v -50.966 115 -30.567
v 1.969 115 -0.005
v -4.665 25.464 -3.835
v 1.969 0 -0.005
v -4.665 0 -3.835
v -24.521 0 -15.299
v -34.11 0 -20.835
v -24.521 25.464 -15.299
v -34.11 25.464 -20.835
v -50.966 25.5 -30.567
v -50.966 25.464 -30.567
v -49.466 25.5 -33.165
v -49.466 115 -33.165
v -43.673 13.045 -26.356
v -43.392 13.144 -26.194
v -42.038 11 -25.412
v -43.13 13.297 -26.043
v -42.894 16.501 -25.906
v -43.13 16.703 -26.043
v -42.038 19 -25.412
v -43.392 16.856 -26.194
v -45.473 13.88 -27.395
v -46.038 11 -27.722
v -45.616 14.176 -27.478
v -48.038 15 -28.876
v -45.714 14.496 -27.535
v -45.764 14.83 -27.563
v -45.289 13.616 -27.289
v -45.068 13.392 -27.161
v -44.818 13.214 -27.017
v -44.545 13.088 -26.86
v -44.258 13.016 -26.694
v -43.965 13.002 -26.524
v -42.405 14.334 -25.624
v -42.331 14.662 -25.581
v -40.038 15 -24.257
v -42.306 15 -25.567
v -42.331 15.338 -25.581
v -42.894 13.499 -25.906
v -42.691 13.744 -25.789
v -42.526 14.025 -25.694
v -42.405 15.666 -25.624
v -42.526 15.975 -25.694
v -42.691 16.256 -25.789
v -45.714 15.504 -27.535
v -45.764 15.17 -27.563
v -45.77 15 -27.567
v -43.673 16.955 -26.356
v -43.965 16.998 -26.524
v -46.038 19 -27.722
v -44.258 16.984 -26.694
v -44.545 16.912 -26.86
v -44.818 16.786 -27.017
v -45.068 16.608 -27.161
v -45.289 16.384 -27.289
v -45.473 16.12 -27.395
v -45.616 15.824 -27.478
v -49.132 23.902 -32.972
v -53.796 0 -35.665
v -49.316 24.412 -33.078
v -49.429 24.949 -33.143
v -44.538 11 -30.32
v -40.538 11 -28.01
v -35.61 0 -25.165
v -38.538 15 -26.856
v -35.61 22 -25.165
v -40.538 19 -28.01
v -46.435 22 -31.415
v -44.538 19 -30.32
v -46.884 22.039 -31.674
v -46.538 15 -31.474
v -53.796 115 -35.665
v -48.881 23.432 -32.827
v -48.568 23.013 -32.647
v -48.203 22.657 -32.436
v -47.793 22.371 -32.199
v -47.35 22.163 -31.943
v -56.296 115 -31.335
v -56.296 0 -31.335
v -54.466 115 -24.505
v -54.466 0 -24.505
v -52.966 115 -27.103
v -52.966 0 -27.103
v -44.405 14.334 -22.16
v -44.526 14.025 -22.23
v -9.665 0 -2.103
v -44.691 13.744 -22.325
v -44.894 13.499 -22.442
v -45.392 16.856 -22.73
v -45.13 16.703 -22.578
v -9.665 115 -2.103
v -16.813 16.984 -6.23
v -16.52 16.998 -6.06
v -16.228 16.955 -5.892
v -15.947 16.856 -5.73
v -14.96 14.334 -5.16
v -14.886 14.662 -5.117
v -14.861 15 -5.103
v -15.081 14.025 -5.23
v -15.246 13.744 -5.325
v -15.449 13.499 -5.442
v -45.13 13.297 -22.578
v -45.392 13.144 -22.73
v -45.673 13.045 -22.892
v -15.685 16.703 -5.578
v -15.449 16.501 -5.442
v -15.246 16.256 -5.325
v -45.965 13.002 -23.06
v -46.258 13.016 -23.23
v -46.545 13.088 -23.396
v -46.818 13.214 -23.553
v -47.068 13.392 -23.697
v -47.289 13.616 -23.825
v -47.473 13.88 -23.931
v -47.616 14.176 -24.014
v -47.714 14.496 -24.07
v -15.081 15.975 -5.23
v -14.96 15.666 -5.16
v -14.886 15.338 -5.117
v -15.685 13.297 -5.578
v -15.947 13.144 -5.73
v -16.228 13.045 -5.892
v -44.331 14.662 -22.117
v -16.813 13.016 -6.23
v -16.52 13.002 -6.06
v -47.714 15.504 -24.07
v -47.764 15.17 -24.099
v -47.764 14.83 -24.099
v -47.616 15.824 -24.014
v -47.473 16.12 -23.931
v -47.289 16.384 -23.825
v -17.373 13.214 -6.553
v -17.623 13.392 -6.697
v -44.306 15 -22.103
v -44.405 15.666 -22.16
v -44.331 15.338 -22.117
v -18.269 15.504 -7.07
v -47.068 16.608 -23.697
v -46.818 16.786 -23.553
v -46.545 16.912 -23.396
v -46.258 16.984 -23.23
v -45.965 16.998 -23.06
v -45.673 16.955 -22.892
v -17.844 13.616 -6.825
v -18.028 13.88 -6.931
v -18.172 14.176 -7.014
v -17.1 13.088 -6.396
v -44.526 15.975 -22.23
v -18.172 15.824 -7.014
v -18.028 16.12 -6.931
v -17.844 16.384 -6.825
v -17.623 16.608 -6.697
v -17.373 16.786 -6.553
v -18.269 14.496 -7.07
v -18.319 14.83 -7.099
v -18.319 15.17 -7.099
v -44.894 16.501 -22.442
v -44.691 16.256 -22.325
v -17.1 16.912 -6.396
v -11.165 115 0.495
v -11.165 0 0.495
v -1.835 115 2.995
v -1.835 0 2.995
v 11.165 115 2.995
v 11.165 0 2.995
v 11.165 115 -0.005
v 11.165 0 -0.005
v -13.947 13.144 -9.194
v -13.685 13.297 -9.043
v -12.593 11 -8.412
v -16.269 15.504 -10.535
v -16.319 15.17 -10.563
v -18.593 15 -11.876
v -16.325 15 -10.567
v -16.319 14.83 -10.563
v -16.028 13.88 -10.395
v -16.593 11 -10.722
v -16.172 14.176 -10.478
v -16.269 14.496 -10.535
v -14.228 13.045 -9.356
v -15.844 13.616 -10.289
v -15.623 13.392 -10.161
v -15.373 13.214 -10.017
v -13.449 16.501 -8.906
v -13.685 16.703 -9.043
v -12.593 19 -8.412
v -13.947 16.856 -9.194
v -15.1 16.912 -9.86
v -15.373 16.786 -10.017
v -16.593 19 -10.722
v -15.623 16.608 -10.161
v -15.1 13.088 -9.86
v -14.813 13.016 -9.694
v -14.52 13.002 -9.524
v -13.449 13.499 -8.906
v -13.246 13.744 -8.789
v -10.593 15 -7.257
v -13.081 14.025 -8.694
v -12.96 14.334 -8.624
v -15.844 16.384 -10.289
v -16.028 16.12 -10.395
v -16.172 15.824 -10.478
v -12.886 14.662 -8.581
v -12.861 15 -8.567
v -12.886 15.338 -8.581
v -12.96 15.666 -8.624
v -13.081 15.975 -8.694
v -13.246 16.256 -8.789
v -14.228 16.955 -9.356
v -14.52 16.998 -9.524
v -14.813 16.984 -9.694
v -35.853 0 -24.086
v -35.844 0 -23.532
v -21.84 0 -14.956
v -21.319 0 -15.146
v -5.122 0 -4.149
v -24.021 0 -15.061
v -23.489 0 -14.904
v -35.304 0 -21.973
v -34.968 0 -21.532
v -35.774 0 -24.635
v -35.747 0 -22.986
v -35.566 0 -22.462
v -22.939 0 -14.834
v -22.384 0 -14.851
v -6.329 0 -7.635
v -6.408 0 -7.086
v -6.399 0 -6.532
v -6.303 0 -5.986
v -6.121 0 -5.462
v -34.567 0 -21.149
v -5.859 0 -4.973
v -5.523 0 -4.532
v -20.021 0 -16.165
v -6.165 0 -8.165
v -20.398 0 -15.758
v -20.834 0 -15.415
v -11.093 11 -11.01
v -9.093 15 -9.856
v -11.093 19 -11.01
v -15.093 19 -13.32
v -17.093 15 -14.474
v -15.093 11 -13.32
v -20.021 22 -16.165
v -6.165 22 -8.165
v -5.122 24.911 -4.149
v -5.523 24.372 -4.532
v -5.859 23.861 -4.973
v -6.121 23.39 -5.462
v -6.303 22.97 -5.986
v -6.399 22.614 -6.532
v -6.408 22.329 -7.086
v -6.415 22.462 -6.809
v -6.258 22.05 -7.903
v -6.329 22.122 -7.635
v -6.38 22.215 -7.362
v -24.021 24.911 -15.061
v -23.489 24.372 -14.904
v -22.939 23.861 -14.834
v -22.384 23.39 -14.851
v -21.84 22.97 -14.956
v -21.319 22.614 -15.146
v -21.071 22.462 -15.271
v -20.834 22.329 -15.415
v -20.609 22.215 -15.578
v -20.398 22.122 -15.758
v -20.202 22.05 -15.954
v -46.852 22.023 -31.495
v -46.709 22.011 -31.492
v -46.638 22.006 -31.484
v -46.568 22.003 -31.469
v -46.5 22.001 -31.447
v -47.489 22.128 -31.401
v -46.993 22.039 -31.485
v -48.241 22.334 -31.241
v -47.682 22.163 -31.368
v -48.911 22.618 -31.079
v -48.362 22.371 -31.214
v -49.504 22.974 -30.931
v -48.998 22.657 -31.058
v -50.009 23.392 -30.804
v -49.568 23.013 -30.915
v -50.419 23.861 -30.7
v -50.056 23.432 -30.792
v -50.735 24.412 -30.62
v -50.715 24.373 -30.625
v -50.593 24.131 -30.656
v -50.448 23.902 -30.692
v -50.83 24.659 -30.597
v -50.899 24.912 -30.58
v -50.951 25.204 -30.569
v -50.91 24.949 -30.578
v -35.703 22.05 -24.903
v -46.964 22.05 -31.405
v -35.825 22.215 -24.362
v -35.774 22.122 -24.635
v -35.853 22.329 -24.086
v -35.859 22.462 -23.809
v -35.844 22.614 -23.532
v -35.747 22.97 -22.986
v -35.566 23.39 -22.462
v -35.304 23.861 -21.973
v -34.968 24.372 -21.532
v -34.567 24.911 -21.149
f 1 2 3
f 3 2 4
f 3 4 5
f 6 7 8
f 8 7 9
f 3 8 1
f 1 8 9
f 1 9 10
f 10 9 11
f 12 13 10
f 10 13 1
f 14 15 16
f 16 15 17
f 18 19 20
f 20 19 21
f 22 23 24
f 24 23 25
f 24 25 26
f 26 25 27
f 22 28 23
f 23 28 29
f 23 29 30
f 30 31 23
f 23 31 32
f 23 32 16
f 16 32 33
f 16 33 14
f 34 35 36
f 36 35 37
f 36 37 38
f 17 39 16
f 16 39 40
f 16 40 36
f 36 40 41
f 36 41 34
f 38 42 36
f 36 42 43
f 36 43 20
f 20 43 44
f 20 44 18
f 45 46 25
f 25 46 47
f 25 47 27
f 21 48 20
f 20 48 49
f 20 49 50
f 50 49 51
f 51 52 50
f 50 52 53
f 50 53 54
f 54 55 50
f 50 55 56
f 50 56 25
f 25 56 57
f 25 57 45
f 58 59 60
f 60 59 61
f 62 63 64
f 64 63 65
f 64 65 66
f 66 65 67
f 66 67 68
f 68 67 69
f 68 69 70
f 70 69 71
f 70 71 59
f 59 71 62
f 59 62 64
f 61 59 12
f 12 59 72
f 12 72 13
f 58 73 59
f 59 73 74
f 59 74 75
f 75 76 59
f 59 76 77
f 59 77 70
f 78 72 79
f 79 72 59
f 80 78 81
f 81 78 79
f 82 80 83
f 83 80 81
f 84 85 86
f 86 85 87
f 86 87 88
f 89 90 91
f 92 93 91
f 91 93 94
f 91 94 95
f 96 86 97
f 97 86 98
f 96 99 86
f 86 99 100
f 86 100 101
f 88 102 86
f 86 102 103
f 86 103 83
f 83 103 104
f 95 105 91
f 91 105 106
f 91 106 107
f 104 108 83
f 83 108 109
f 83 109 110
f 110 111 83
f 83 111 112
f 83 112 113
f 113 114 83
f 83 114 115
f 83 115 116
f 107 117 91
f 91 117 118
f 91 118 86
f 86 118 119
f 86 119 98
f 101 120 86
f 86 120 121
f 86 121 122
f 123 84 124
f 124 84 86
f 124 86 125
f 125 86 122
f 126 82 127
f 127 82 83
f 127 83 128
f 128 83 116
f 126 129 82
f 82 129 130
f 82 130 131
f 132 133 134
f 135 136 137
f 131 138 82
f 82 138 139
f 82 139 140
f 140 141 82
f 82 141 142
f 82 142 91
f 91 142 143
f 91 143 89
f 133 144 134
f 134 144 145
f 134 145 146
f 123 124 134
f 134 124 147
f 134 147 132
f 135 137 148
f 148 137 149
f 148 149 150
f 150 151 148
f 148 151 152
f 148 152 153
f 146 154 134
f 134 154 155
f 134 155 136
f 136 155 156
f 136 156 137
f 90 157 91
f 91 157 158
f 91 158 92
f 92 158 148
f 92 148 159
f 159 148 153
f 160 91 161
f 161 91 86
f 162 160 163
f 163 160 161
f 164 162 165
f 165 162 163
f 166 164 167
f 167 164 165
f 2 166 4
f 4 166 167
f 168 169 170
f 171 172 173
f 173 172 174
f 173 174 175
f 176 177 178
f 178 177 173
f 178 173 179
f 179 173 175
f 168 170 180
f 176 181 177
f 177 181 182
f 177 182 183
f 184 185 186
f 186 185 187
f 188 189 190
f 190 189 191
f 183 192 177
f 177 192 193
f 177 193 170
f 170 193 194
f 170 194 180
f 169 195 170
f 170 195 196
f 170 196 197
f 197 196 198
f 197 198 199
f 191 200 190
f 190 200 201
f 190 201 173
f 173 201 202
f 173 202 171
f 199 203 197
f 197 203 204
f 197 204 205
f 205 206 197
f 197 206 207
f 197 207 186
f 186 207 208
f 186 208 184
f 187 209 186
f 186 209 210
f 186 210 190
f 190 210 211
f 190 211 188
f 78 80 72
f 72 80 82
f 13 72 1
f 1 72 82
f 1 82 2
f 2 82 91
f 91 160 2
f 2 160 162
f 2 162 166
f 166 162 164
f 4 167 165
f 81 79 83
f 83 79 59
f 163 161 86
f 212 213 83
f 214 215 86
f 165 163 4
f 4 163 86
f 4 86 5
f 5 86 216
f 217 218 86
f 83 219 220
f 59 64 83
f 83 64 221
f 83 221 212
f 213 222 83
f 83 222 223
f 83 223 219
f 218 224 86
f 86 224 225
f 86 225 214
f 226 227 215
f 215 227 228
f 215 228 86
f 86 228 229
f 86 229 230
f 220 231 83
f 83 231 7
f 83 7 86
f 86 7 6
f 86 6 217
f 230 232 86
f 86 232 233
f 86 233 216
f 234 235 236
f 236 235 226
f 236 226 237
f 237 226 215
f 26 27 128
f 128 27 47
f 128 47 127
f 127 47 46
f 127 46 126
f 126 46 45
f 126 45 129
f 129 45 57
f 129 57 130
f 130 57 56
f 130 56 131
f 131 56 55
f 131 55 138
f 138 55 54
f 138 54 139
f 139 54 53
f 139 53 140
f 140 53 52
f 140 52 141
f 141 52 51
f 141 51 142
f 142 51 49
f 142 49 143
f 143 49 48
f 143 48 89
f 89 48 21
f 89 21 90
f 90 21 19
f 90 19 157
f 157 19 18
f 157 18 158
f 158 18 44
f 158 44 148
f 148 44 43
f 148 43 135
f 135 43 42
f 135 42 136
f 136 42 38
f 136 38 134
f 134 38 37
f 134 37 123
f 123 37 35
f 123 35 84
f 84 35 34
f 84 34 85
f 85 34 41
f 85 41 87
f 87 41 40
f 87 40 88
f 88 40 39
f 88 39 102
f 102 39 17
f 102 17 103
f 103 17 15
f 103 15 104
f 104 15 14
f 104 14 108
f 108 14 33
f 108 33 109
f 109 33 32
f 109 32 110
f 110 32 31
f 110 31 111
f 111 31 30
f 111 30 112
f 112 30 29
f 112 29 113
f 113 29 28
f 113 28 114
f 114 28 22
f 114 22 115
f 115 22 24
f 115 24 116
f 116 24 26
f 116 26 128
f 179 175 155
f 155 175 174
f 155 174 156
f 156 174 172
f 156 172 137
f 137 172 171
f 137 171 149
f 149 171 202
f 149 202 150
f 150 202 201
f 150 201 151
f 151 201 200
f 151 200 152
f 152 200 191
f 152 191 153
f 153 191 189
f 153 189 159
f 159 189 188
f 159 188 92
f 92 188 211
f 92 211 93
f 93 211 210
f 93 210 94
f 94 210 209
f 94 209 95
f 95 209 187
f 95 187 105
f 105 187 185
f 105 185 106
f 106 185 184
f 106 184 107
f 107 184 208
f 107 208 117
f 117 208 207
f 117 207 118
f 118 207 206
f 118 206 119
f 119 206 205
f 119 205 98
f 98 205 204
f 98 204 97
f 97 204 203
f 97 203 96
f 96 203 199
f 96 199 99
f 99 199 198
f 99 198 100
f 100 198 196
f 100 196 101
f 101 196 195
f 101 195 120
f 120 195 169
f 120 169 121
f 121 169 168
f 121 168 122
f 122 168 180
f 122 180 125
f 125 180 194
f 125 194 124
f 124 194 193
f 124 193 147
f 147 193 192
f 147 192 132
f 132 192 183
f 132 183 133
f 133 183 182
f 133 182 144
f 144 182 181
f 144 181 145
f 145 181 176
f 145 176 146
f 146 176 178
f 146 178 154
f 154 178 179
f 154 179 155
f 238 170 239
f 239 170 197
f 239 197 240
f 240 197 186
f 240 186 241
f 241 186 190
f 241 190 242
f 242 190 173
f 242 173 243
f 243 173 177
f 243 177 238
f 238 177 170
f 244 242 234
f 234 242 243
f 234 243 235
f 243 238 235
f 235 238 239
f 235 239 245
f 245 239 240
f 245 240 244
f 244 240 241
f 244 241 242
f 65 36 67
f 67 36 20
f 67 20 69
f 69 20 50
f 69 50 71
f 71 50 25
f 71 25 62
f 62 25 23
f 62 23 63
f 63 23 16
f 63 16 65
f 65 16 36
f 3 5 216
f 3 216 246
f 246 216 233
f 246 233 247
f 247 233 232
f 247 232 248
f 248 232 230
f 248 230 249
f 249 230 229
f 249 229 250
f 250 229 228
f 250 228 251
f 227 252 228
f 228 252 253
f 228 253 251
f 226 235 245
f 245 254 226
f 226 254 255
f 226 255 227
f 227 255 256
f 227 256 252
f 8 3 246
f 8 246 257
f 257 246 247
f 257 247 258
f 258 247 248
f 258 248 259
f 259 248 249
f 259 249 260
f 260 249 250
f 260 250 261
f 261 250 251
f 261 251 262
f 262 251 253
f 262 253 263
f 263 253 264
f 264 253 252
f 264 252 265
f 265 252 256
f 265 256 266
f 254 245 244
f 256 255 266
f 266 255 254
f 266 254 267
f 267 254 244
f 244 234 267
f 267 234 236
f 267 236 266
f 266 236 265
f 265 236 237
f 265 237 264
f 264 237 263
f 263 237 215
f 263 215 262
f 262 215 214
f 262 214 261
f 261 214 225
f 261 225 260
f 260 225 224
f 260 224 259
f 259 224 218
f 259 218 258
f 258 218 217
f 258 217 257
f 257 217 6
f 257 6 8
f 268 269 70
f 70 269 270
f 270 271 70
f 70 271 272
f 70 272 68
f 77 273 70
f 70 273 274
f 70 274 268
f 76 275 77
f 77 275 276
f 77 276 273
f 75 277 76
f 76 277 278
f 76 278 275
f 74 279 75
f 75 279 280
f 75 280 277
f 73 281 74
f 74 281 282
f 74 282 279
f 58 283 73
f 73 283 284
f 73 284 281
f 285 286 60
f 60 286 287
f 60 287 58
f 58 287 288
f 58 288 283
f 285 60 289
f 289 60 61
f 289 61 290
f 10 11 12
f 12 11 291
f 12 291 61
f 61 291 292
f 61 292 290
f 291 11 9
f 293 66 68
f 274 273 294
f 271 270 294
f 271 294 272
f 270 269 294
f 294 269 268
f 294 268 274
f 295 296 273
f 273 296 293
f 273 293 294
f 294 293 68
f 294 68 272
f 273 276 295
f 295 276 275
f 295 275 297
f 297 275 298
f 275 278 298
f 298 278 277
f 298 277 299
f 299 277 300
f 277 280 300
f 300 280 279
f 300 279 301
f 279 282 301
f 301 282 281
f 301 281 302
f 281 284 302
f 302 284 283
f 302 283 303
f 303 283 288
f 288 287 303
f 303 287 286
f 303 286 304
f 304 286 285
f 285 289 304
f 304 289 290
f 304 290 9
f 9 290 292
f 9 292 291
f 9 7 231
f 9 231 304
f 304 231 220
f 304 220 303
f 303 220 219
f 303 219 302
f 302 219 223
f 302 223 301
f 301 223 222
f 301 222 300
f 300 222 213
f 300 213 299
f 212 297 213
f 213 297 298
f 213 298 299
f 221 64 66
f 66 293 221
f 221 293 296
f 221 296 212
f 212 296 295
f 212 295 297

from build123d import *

# Parameters (mm, degrees)
BOSS_EXTRU_1_DEPTH      = 115
ESQUISSE3_R             = 2.0000000000000027
ESQUISSE3_R_2           = 2.0000000000000036
ENL_V_MAT_EXTRU_1_DEPTH = 115
ESQUISSE4_W             = 16
ESQUISSE4_H             = 22
BOSS_EXTRU_2_DEPTH      = 3
CONG_1_R                = 3.5


with BuildPart() as part:
    # Esquisse1 → Boss.-Extru.1 (new body)
    with BuildSketch(Plane(origin=(0, 0, 0), x_dir=(1, 0, 0), z_dir=(0, 1, 0))):
        Polygon((-9.665063509740824, 2.102761677791812), (-11.16506350974071, -0.4953145335614556), (-1.834936490818464, -2.99531453356143), (11.165063509180728, -2.9953145335603057), (11.165063509180731, 0.00468546643886736), (1.9689110864743, 0.00468546643886637), (-7.660052187463922, 5.563970004664114), (-50.96633369896256, 30.56686329292954), (-49.46633369896244, 33.164939504283076), (-53.79646071788463, 35.664939504283076), (-55.29646071788474, 33.06686329292953), (-56.29646071788462, 31.334812485360874), (-54.466333698962515, 24.504685466438406), (-52.96633369896275, 27.10276167779183), align=None)
    extrude(amount=BOSS_EXTRU_1_DEPTH)

    # Esquisse3 → Enlèv. mat.-Extru.1 (cut)
    with BuildSketch(Plane(origin=(-1.5057433618991607, 0, 2.6080240059689155), x_dir=(0.8660254037844384, 0, 0.5000000000000006), z_dir=(-0.5000000000000006, 0, 0.8660254037844385))):
        with Locations((-51.421571367521196, 15)):
            Circle(ESQUISSE3_R)
        with Locations((-17.42157136752137, 15)):
            Circle(ESQUISSE3_R_2)
    extrude(amount=-ENL_V_MAT_EXTRU_1_DEPTH, mode=Mode.SUBTRACT)

    # Esquisse4 → Boss.-Extru.2 (add)
    # profile 1 of 2: a face of its own
    with BuildSketch(Plane(origin=(0.4942566381008935, 0, -0.8560776091689317), x_dir=(-0.8660254037844388, 0, -0.49999999999999983), z_dir=(0.4999999999999998, 0, -0.8660254037844387))):
        with Locations((17.42157136752138, 11)):
            Rectangle(ESQUISSE4_W, ESQUISSE4_H)
        Polygon((19.73097244427988, 11.000000000000002), (22.040373521038383, 14.999999999999996), (19.730972444279878, 18.999999999999996), (15.112170290762874, 18.999999999999996), (12.802769214004368, 14.999999999999996), (15.112170290762867, 11.000000000000002), align=None, mode=Mode.SUBTRACT)
    # profile 2 of 2: a face of its own
    with BuildSketch(Plane(origin=(0.4942566381008935, 0, -0.8560776091689317), x_dir=(-0.8660254037844388, 0, -0.49999999999999983), z_dir=(0.4999999999999998, 0, -0.8660254037844387))):
        Polygon((43.42157136752119, 0), (59.42157136752126, 0), (59.42157136752126, 22.000000000000007), (43.42157136752119, 22), align=None)
        Polygon((49.11217029076269, 10.999999999999996), (53.73097244427969, 10.999999999999996), (56.0403735210382, 14.999999999999993), (53.7309724442797, 18.999999999999982), (49.11217029076269, 18.999999999999982), (46.80276921400419, 14.999999999999998), align=None, mode=Mode.SUBTRACT)
    extrude(amount=BOSS_EXTRU_2_DEPTH)

    # Congé1
    # the kernel refuses this fillet: 3.5 mm, written as the material it adds along each edge
    with BuildSketch(Plane(origin=(-21.521469970291736, 0, -13.566863292929616), x_dir=(-0.8660254037844398, 0, -0.499999999999998), z_dir=(0, 1, 0))) as cong_1_piece_1:
        with BuildLine():
            CenterArc((3.464101615137791, -3.4999999999999996), CONG_1_R, 89.99999999999986, 81.78678929826208)
            Line((3.411e-14, -3.000000000000007), (-0.06928203230272056, -2.990000000000007))
            ThreePointArc((-0.06928203230272056, -2.990000000000007), (-0.0700000000000017, -1.5000000000000009), (-0.06999999999999917, 8.1e-16))
            Line((-0.06999999999999917, 8.1e-16), (-8e-17, 0.07000000000000071))
            Line((-8e-17, 0.07000000000000071), (3.464101615137799, 0.0700000000000007))
            Line((3.464101615137799, 0.0700000000000007), (3.4641016151377992, -8e-17))
        make_face()
    extrude(amount=22)
    with BuildSketch(Plane(origin=(-7.665063509740717, 22, -5.56686329292962), x_dir=(0.8660254037844386, 0, 0.5000000000000001), z_dir=(0, -1, 0))) as cong_1_piece_2:
        with BuildLine():
            CenterArc((3.4641016151377975, -3.5), CONG_1_R, 89.99999999999999, 81.78678929826192)
            Line((4.212e-14, -3.000000000000006), (-0.06928203230271353, -2.9900000000000064))
            ThreePointArc((-0.06928203230271353, -2.9900000000000064), (-0.07000000000000044, -1.5000000000000042), (-0.06999999999999994, -1.9e-16))
            Line((-0.06999999999999994, -1.9e-16), (-1.9e-16, 0.06999999999999994))
            Line((-1.9e-16, 0.06999999999999994), (3.464101615137799, 0.07000000000000006))
            Line((3.464101615137799, 0.07000000000000006), (3.464101615137799, -1e-16))
        make_face()
    extrude(amount=22)
    with BuildSketch(Plane(origin=(-21.521469970291736, 22, -13.566863292929616), x_dir=(-7e-16, 1, 1.21e-15), z_dir=(0.8660254037844388, 0, 0.49999999999999983))) as cong_1_piece_3:
        with BuildLine():
            CenterArc((3.4641016151377912, -3.5), CONG_1_R, 89.99999999999993, 81.78678929826201)
            Line((3.488e-14, -3.0000000000000067), (-0.06928203230272052, -2.990000000000006))
            ThreePointArc((-0.06928203230272052, -2.990000000000006), (-0.0700000000000024, -1.500000000000003), (-0.07000000000000028, 3.4e-16))
            Line((-0.07000000000000028, 3.4e-16), (1e-16, 0.07000000000000095))
            Line((1e-16, 0.07000000000000095), (3.464101615137796, 0.07000000000000071))
            Line((3.464101615137796, 0.07000000000000071), (3.464101615137796, 0))
        make_face()
    extrude(amount=16)
    with BuildSketch(Plane(origin=(-37.10992723841147, 22, -22.56686329292952), x_dir=(0.5000000000000127, 0, -0.8660254037844313), z_dir=(0, -1, 0))) as cong_1_piece_4:
        with BuildLine():
            CenterArc((3.5000000000000466, 3.464101615137746), CONG_1_R, 179.99999999999915, 81.78678929826202)
            Line((4.591e-14, 3.464101615137798), (-0.06999999999995148, 3.4641016151378015))
            Line((-0.06999999999995148, 3.4641016151378015), (-0.06999999999999738, 3.46e-15))
            Line((-0.06999999999999738, 3.46e-15), (-3.8e-16, -0.06999999999999916))
            ThreePointArc((-3.8e-16, -0.06999999999999916), (1.5000000000000058, -0.07000000000002472), (2.9900000000000095, -0.06928203230275311))
            Line((2.9900000000000095, -0.06928203230275311), (3.000000000000009, -2e-17))
        make_face()
    extrude(amount=22)
    with BuildSketch(Plane(origin=(-50.96633369896256, 22.000000000000007, -30.56686329292955), x_dir=(0.4999999999999998, 1.3026616822268463e-14, -0.8660254037844388), z_dir=(0.8660254037844388, 0, 0.49999999999999983))) as cong_1_piece_5:
        with BuildLine():
            CenterArc((3.5000000000000306, 3.4641016151377513), CONG_1_R, 179.99999999999926, 81.78678929826219)
            Line((2.927e-14, 3.464101615137797), (-0.06999999999996813, 3.464101615137798))
            Line((-0.06999999999996813, 3.464101615137798), (-0.06999999999999787, 9.1e-16))
            Line((-0.06999999999999787, 9.1e-16), (2.16e-15, -0.0700000000000003))
            ThreePointArc((2.16e-15, -0.0700000000000003), (1.5000000000000022, -0.07000000000001984), (2.990000000000009, -0.0692820323027553))
            Line((2.990000000000009, -0.0692820323027553), (3.0000000000000093, 0))
        make_face()
    extrude(amount=16.000000000000075)
    with BuildSketch(Plane(origin=(-50.96633369896256, 22.000000000000007, -30.56686329292955), x_dir=(0.8660254037844387, 0, 0.49999999999999983), z_dir=(0.49999999999999983, 0, -0.8660254037844388))) as cong_1_piece_6:
        with BuildLine():
            CenterArc((CONG_1_R, -CONG_1_R), CONG_1_R, 90, 90)
            Line((-1.78e-15, -CONG_1_R), (-CONG_1_R * 0.02, -CONG_1_R))
            Line((-CONG_1_R * 0.02, -CONG_1_R), (-CONG_1_R * 0.02, CONG_1_R * 0.02))
            Line((-CONG_1_R * 0.02, CONG_1_R * 0.02), (CONG_1_R, CONG_1_R * 0.02))
            Line((CONG_1_R, CONG_1_R * 0.02), (CONG_1_R, 0))
        make_face()
    extrude(amount=3.0000000000000036)
    with BuildSketch(Plane(origin=(-29.02146997029182, 22, -17.89699031185185), x_dir=(0, 1, 0), z_dir=(0.8660254037844388, 0, 0.49999999999999983))) as cong_1_piece_7a_section:
        with BuildLine():
            CenterArc((3.4641016151377926, -3.5000000000000013), CONG_1_R, 90, 81.78678929826191)
            Line((3.553e-14, -3.000000000000007), (-0.0692820323027199, -2.9900000000000064))
            ThreePointArc((-0.0692820323027199, -2.9900000000000064), (-0.07000000000000028, -1.500000000000002), (-0.07000000000000028, 0))
            Line((-0.07000000000000028, 0), (0, 0.0699999999999974))
            Line((0, 0.0699999999999974), (3.4641016151377926, 0.06999999999999917))
            Line((3.4641016151377926, 0.06999999999999917), (3.4641016151377926, 0))
        make_face()
    cong_1_piece_7a = extrude(amount=24.660254037844485, mode=Mode.PRIVATE)
    cong_1_piece_7a = split(cong_1_piece_7a, bisect_by=Plane(origin=(-21.154506205499796, 22.800005921132424, -14.202463178086015), z_dir=(-0.8660254037844388, 0, -0.49999999999999983)), keep=Keep.TOP, mode=Mode.PRIVATE)
    with BuildSketch(Plane(origin=(-21.521469970291736, 0, -13.566863292929616), x_dir=(-0.8660254037844398, 0, -0.499999999999998), z_dir=(0, 1, 0))) as cong_1_piece_7b_section:
        with BuildLine():
            CenterArc((3.464101615137791, -3.4999999999999996), CONG_1_R, 89.99999999999986, 81.78678929826208)
            Line((3.411e-14, -3.000000000000007), (-0.06928203230272056, -2.990000000000007))
            ThreePointArc((-0.06928203230272056, -2.990000000000007), (-0.0700000000000017, -1.5000000000000009), (-0.06999999999999917, 8.1e-16))
            Line((-0.06999999999999917, 8.1e-16), (-8e-17, 0.07000000000000071))
            Line((-8e-17, 0.07000000000000071), (3.464101615137799, 0.0700000000000007))
            Line((3.464101615137799, 0.0700000000000007), (3.4641016151377992, -8e-17))
        make_face()
    cong_1_piece_7b = extrude(amount=30.660254037844496, mode=Mode.PRIVATE)
    cong_1_piece_7b = split(cong_1_piece_7b, bisect_by=Plane(origin=(-21.84733165637773, 22, -14.602466138652442), z_dir=(0, 1, 0)), keep=Keep.TOP, mode=Mode.PRIVATE)
    cong_1_piece_7 = cong_1_piece_7a & cong_1_piece_7b
    add(cong_1_piece_7)
    with BuildSketch(Plane(origin=(-7.665063509740719, 30.660254037844496, -5.566863292929618), x_dir=(0.8660254037844389, 0, 0.4999999999999995), z_dir=(0, -1, 0))) as cong_1_piece_8a_section:
        with BuildLine():
            CenterArc((3.4641016151378006, -3.5), CONG_1_R, 90.00000000000001, 81.78678929826195)
            Line((4.504e-14, -3.0000000000000084), (-0.06928203230271082, -2.990000000000009))
            ThreePointArc((-0.06928203230271082, -2.990000000000009), (-0.06999999999999906, -1.5000000000000056), (-0.06999999999999994, -2.4e-16))
            Line((-0.06999999999999994, -2.4e-16), (-2.4e-16, 0.06999999999999994))
            Line((-2.4e-16, 0.06999999999999994), (3.4641016151377992, 0.07))
            Line((3.4641016151377992, 0.07), (3.4641016151377997, 5e-17))
        make_face()
    cong_1_piece_8a = extrude(amount=30.660254037844496, mode=Mode.PRIVATE)
    cong_1_piece_8a = split(cong_1_piece_8a, bisect_by=Plane(origin=(-6.605274294070357, 22, -5.802460217520097), z_dir=(0, 1, 0)), keep=Keep.TOP, mode=Mode.PRIVATE)
    with BuildSketch(Plane(origin=(-21.521469970291736, 22, -13.566863292929616), x_dir=(-7e-16, 1, 1.21e-15), z_dir=(0.8660254037844388, 0, 0.49999999999999983))) as cong_1_piece_8b_section:
        with BuildLine():
            CenterArc((3.4641016151377912, -3.5), CONG_1_R, 89.99999999999993, 81.78678929826201)
            Line((3.488e-14, -3.0000000000000067), (-0.06928203230272052, -2.990000000000006))
            ThreePointArc((-0.06928203230272052, -2.990000000000006), (-0.0700000000000024, -1.500000000000003), (-0.07000000000000028, 3.4e-16))
            Line((-0.07000000000000028, 3.4e-16), (1e-16, 0.07000000000000095))
            Line((1e-16, 0.07000000000000095), (3.464101615137796, 0.07000000000000071))
            Line((3.464101615137796, 0.07000000000000071), (3.464101615137796, 0))
        make_face()
    cong_1_piece_8b = extrude(amount=24.66025403784449, mode=Mode.PRIVATE)
    cong_1_piece_8b = split(cong_1_piece_8b, bisect_by=Plane(origin=(-7.298099744948748, 22.800005921132424, -6.202463178086066), z_dir=(0.8660254037844388, 0, 0.49999999999999983)), keep=Keep.TOP, mode=Mode.PRIVATE)
    cong_1_piece_8 = cong_1_piece_8a & cong_1_piece_8b
    add(cong_1_piece_8)
    with BuildSketch(Plane(origin=(-50.96633369896256, 22.000000000000007, -30.56686329292955), x_dir=(0.4999999999999998, 1.3026616822268463e-14, -0.8660254037844388), z_dir=(0.8660254037844388, 0, 0.49999999999999983))) as cong_1_piece_9a_section:
        with BuildLine():
            CenterArc((3.5000000000000306, 3.4641016151377513), CONG_1_R, 179.99999999999926, 81.78678929826219)
            Line((2.927e-14, 3.464101615137797), (-0.06999999999996813, 3.464101615137798))
            Line((-0.06999999999996813, 3.464101615137798), (-0.06999999999999787, 9.1e-16))
            Line((-0.06999999999999787, 9.1e-16), (2.16e-15, -0.0700000000000003))
            ThreePointArc((2.16e-15, -0.0700000000000003), (1.5000000000000022, -0.07000000000001984), (2.990000000000009, -0.0692820323027553))
            Line((2.990000000000009, -0.0692820323027553), (3.0000000000000093, 0))
        make_face()
    cong_1_piece_9a = extrude(amount=24.660254037844567, mode=Mode.PRIVATE)
    cong_1_piece_9a = split(cong_1_piece_9a, bisect_by=Plane(origin=(-36.742963473619156, 22.800005921131838, -23.202463178086564), z_dir=(0.8660254037844388, 0, 0.49999999999999983)), keep=Keep.TOP, mode=Mode.PRIVATE)
    with BuildSketch(Plane(origin=(-37.10992723841147, 30.660254037844496, -22.56686329292951), x_dir=(0.5000000000000099, 0, -0.8660254037844329), z_dir=(0, -1, 0))) as cong_1_piece_9b_section:
        with BuildLine():
            CenterArc((3.5000000000000386, 3.4641016151377477), CONG_1_R, 179.99999999999935, 81.78678929826202)
            Line((3.741e-14, 3.464101615137789), (-0.06999999999996008, 3.464101615137792))
            Line((-0.06999999999996008, 3.464101615137792), (-0.0699999999999974, 3.23e-15))
            Line((-0.0699999999999974, 3.23e-15), (-1.6e-16, -0.06999999999999917))
            ThreePointArc((-1.6e-16, -0.06999999999999917), (1.500000000000006, -0.07000000000001991), (2.9900000000000126, -0.06928203230275315))
            Line((2.9900000000000126, -0.06928203230275315), (3.0000000000000115, 9e-17))
        make_face()
    cong_1_piece_9b = extrude(amount=30.660254037844496, mode=Mode.PRIVATE)
    cong_1_piece_9b = split(cong_1_piece_9b, bisect_by=Plane(origin=(-36.05013802274124, 22, -22.80246021752022), z_dir=(3.8e-16, 1, 2.2e-16)), keep=Keep.TOP, mode=Mode.PRIVATE)
    cong_1_piece_9 = cong_1_piece_9a & cong_1_piece_9b
    add(cong_1_piece_9)
    with BuildSketch(Plane(origin=(-55.34133369896255, 22.000000000000007, -22.989141009815718), x_dir=(0.8660254037844387, 0, 0.49999999999999983), z_dir=(0.49999999999999983, 0, -0.8660254037844388))) as cong_1_piece_10a_section:
        with BuildLine():
            CenterArc((CONG_1_R, -CONG_1_R), CONG_1_R, 90, 90)
            Line((-7.93e-15, -CONG_1_R), (-CONG_1_R * 0.02, -CONG_1_R))
            Line((-CONG_1_R * 0.02, -CONG_1_R), (-CONG_1_R * 0.02, CONG_1_R * 0.02))
            Line((-CONG_1_R * 0.02, CONG_1_R * 0.02), (CONG_1_R, CONG_1_R * 0.02))
            Line((CONG_1_R, CONG_1_R * 0.02), (CONG_1_R, 0))
        make_face()
    cong_1_piece_10a = extrude(amount=11.749999999999995, mode=Mode.PRIVATE)
    cong_1_piece_10a = split(cong_1_piece_10a, bisect_by=Plane(origin=(-50.280109978095446, 22.79238289993389, -30.170671842962605), z_dir=(-0.49999999999999967, 0, 0.8660254037844389)), keep=Keep.TOP, mode=Mode.PRIVATE)
    with BuildSketch(Plane(origin=(-58.46633369896265, 22.00000000000001, -34.89699031185178), x_dir=(0.4999999999999998, 1.3026616822268407e-14, -0.8660254037844388), z_dir=(0.8660254037844388, 0, 0.49999999999999983))) as cong_1_piece_10b_section:
        with BuildLine():
            CenterArc((3.500000000000043, 3.4641016151377513), CONG_1_R, 179.99999999999926, 81.78678929826219)
            Line((4.513e-14, 3.464101615137797), (-0.06999999999995227, 3.464101615137798))
            Line((-0.06999999999995227, 3.464101615137798), (-0.0699999999999974, 9.1e-16))
            Line((-0.0699999999999974, 9.1e-16), (-9.1e-16, -0.0700000000000003))
            ThreePointArc((-9.1e-16, -0.0700000000000003), (1.5000000000000213, -0.07000000000001984), (2.990000000000022, -0.0692820323027553))
            Line((2.990000000000022, -0.0692820323027553), (3.000000000000022, 0))
        make_face()
    cong_1_piece_10b = extrude(amount=24.66025403784456, mode=Mode.PRIVATE)
    cong_1_piece_10b = split(cong_1_piece_10b, bisect_by=Plane(origin=(-50.59936993417017, 22.80000592113141, -31.202463178086727), z_dir=(-0.8660254037844386, 0, -0.5000000000000002)), keep=Keep.TOP, mode=Mode.PRIVATE)
    cong_1_piece_10 = cong_1_piece_10a & cong_1_piece_10b
    add(cong_1_piece_10)


solid = part.part
